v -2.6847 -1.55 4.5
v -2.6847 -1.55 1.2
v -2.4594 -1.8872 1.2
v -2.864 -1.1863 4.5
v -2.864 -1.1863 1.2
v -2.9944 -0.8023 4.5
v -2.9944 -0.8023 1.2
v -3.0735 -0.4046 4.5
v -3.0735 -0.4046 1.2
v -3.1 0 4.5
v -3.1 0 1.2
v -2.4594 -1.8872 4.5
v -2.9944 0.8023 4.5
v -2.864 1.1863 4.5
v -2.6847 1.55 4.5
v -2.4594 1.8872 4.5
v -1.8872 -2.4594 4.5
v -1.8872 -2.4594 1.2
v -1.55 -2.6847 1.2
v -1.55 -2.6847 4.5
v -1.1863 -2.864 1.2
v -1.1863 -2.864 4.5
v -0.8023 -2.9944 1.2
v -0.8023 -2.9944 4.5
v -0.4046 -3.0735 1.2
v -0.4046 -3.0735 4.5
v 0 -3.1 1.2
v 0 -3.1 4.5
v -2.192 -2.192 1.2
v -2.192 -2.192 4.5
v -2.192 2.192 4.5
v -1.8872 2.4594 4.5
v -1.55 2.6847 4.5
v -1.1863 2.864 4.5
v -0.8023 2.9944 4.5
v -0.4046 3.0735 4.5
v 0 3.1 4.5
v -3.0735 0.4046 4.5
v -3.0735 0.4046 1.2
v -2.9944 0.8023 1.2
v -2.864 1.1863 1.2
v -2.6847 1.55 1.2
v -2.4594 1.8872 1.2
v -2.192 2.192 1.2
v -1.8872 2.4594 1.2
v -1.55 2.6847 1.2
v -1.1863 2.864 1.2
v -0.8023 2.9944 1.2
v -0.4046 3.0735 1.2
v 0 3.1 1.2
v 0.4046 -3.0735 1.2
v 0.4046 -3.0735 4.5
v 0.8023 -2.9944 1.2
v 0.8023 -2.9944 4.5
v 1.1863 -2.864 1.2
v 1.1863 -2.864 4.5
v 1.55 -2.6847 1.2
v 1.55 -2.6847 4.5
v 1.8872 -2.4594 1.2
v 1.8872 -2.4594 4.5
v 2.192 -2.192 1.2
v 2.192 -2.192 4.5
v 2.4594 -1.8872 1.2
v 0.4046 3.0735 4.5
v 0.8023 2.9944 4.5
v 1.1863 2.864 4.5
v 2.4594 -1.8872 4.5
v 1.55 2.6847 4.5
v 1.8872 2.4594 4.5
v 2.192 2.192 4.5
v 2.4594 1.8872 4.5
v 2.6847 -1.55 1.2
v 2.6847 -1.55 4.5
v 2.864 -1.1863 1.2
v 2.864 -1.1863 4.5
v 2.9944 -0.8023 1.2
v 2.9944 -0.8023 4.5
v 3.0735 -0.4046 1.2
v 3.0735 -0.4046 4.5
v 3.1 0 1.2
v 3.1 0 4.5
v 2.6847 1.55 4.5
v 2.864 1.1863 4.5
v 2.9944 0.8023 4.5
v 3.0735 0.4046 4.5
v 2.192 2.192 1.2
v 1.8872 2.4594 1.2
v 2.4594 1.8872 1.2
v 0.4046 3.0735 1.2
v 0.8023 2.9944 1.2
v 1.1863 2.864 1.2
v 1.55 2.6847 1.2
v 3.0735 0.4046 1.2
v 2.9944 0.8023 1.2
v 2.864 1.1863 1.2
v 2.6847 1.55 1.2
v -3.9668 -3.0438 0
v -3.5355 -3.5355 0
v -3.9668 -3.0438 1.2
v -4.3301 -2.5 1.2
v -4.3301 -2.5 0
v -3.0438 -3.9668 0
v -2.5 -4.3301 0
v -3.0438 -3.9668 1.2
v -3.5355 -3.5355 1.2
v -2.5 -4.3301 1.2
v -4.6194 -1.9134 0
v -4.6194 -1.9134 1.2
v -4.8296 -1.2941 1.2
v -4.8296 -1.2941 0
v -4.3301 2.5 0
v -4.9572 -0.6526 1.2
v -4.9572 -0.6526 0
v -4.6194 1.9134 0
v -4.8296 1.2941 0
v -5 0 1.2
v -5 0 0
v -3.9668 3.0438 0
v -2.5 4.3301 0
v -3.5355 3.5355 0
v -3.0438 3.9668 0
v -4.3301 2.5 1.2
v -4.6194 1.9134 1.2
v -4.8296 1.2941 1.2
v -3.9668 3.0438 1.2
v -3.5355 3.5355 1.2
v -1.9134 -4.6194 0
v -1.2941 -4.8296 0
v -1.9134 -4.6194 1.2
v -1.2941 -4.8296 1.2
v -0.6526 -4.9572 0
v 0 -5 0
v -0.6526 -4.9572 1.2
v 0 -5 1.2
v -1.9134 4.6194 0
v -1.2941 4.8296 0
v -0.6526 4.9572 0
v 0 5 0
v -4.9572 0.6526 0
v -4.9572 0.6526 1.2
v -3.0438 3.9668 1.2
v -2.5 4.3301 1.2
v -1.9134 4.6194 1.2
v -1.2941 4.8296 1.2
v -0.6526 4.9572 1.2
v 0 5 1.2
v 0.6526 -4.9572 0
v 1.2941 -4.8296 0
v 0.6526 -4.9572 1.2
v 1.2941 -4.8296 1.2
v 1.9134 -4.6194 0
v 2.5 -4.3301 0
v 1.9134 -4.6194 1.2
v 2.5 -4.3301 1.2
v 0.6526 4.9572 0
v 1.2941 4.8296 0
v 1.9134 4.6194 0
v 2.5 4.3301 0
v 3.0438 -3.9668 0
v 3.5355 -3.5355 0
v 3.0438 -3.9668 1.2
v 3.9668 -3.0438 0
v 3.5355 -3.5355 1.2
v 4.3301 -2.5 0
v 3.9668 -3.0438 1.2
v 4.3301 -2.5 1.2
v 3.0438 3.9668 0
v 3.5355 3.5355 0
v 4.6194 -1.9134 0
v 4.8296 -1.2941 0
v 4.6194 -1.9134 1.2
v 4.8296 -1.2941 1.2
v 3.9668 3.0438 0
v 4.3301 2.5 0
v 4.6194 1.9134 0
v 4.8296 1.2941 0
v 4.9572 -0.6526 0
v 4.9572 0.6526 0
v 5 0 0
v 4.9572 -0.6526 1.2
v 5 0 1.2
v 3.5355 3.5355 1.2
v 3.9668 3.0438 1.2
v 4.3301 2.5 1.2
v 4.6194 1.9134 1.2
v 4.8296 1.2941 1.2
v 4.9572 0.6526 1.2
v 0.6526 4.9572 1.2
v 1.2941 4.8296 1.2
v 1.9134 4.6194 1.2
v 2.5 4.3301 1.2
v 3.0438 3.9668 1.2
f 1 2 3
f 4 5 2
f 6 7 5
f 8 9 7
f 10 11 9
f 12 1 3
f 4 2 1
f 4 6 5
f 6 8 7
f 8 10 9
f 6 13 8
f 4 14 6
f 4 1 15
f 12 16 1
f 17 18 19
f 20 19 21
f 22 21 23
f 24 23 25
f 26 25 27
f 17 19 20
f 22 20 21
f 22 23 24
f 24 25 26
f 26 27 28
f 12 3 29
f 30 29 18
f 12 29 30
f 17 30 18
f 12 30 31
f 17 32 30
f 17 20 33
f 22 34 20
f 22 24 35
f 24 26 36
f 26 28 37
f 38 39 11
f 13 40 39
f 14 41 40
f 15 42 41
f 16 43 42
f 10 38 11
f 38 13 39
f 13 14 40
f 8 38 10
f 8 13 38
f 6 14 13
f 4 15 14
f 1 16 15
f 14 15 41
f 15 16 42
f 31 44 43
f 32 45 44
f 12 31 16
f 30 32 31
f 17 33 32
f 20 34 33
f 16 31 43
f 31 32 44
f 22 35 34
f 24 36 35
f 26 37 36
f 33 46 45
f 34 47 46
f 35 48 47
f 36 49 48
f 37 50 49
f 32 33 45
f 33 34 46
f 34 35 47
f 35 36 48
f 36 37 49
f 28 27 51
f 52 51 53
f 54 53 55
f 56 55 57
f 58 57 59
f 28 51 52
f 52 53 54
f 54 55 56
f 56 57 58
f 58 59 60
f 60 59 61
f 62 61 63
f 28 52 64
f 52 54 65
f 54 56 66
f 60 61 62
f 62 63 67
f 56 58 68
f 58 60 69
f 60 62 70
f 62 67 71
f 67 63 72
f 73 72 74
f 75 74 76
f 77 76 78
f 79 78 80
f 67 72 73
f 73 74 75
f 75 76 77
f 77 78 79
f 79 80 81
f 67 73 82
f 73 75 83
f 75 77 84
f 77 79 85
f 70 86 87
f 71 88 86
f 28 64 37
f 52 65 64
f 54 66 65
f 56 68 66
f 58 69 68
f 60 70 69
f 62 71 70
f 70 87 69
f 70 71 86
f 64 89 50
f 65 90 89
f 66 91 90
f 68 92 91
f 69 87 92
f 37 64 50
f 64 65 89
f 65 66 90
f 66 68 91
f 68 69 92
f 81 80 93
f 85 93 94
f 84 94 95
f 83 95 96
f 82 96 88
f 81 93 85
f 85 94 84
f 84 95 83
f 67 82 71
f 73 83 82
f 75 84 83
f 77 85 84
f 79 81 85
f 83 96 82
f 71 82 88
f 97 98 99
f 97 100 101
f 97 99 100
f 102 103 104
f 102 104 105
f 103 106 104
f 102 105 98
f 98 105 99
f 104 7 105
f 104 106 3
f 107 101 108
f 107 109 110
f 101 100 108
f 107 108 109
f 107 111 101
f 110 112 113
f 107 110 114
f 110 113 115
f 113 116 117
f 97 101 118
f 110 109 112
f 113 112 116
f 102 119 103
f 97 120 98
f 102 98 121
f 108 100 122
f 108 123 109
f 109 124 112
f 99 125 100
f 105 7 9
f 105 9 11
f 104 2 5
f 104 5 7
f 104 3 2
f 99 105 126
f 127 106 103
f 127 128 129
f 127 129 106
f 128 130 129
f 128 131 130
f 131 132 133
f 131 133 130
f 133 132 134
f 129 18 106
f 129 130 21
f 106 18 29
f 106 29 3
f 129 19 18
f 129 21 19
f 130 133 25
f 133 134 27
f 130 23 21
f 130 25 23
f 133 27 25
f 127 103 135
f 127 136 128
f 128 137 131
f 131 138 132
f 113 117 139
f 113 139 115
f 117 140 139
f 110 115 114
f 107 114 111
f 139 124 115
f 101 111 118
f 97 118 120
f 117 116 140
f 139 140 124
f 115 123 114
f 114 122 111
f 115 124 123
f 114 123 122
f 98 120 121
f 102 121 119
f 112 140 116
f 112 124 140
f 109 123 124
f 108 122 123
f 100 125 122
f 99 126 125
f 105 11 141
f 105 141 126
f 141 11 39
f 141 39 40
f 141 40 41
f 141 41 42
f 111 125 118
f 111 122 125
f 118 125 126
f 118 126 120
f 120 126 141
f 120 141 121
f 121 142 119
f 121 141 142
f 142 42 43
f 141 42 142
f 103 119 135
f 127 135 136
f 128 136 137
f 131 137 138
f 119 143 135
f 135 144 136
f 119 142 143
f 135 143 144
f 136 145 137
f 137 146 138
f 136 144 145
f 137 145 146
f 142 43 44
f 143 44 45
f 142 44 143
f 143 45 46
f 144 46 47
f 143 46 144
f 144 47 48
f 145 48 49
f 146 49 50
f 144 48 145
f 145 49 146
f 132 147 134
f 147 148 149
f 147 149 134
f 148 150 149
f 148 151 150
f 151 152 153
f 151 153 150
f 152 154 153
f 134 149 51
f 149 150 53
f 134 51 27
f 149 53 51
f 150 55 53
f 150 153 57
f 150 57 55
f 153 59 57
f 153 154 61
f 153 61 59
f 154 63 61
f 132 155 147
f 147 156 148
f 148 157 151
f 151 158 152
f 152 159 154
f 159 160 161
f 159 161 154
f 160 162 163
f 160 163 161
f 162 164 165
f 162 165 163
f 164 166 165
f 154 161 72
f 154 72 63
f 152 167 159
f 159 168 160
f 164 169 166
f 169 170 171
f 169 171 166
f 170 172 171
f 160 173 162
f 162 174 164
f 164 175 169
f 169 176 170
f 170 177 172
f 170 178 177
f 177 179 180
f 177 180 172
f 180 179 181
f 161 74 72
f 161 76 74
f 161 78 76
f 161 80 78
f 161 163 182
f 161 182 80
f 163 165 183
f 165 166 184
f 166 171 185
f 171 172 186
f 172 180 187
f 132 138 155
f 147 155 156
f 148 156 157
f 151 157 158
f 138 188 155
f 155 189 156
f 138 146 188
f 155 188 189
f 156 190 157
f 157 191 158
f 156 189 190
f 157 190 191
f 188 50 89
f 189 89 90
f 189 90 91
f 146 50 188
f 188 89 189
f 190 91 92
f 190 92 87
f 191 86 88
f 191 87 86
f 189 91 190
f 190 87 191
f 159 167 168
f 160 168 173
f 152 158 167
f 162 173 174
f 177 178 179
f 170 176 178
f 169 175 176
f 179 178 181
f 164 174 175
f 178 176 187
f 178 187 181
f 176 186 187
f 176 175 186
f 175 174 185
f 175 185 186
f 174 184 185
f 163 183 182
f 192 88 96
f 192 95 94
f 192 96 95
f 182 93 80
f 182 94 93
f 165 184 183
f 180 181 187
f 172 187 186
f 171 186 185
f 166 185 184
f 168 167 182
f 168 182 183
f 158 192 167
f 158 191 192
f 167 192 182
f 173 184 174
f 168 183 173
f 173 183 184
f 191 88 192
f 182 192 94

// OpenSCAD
// Generated from parameters.json by build.py. Edit parameters.json, then rebuild.
// CSG and STL share the same source. See docs/enclosure.md. Units mm.
union() {
cylinder(d=6.2,h=4.5,$fn=48);
cylinder(d=10,h=1.2,$fn=48);
}
